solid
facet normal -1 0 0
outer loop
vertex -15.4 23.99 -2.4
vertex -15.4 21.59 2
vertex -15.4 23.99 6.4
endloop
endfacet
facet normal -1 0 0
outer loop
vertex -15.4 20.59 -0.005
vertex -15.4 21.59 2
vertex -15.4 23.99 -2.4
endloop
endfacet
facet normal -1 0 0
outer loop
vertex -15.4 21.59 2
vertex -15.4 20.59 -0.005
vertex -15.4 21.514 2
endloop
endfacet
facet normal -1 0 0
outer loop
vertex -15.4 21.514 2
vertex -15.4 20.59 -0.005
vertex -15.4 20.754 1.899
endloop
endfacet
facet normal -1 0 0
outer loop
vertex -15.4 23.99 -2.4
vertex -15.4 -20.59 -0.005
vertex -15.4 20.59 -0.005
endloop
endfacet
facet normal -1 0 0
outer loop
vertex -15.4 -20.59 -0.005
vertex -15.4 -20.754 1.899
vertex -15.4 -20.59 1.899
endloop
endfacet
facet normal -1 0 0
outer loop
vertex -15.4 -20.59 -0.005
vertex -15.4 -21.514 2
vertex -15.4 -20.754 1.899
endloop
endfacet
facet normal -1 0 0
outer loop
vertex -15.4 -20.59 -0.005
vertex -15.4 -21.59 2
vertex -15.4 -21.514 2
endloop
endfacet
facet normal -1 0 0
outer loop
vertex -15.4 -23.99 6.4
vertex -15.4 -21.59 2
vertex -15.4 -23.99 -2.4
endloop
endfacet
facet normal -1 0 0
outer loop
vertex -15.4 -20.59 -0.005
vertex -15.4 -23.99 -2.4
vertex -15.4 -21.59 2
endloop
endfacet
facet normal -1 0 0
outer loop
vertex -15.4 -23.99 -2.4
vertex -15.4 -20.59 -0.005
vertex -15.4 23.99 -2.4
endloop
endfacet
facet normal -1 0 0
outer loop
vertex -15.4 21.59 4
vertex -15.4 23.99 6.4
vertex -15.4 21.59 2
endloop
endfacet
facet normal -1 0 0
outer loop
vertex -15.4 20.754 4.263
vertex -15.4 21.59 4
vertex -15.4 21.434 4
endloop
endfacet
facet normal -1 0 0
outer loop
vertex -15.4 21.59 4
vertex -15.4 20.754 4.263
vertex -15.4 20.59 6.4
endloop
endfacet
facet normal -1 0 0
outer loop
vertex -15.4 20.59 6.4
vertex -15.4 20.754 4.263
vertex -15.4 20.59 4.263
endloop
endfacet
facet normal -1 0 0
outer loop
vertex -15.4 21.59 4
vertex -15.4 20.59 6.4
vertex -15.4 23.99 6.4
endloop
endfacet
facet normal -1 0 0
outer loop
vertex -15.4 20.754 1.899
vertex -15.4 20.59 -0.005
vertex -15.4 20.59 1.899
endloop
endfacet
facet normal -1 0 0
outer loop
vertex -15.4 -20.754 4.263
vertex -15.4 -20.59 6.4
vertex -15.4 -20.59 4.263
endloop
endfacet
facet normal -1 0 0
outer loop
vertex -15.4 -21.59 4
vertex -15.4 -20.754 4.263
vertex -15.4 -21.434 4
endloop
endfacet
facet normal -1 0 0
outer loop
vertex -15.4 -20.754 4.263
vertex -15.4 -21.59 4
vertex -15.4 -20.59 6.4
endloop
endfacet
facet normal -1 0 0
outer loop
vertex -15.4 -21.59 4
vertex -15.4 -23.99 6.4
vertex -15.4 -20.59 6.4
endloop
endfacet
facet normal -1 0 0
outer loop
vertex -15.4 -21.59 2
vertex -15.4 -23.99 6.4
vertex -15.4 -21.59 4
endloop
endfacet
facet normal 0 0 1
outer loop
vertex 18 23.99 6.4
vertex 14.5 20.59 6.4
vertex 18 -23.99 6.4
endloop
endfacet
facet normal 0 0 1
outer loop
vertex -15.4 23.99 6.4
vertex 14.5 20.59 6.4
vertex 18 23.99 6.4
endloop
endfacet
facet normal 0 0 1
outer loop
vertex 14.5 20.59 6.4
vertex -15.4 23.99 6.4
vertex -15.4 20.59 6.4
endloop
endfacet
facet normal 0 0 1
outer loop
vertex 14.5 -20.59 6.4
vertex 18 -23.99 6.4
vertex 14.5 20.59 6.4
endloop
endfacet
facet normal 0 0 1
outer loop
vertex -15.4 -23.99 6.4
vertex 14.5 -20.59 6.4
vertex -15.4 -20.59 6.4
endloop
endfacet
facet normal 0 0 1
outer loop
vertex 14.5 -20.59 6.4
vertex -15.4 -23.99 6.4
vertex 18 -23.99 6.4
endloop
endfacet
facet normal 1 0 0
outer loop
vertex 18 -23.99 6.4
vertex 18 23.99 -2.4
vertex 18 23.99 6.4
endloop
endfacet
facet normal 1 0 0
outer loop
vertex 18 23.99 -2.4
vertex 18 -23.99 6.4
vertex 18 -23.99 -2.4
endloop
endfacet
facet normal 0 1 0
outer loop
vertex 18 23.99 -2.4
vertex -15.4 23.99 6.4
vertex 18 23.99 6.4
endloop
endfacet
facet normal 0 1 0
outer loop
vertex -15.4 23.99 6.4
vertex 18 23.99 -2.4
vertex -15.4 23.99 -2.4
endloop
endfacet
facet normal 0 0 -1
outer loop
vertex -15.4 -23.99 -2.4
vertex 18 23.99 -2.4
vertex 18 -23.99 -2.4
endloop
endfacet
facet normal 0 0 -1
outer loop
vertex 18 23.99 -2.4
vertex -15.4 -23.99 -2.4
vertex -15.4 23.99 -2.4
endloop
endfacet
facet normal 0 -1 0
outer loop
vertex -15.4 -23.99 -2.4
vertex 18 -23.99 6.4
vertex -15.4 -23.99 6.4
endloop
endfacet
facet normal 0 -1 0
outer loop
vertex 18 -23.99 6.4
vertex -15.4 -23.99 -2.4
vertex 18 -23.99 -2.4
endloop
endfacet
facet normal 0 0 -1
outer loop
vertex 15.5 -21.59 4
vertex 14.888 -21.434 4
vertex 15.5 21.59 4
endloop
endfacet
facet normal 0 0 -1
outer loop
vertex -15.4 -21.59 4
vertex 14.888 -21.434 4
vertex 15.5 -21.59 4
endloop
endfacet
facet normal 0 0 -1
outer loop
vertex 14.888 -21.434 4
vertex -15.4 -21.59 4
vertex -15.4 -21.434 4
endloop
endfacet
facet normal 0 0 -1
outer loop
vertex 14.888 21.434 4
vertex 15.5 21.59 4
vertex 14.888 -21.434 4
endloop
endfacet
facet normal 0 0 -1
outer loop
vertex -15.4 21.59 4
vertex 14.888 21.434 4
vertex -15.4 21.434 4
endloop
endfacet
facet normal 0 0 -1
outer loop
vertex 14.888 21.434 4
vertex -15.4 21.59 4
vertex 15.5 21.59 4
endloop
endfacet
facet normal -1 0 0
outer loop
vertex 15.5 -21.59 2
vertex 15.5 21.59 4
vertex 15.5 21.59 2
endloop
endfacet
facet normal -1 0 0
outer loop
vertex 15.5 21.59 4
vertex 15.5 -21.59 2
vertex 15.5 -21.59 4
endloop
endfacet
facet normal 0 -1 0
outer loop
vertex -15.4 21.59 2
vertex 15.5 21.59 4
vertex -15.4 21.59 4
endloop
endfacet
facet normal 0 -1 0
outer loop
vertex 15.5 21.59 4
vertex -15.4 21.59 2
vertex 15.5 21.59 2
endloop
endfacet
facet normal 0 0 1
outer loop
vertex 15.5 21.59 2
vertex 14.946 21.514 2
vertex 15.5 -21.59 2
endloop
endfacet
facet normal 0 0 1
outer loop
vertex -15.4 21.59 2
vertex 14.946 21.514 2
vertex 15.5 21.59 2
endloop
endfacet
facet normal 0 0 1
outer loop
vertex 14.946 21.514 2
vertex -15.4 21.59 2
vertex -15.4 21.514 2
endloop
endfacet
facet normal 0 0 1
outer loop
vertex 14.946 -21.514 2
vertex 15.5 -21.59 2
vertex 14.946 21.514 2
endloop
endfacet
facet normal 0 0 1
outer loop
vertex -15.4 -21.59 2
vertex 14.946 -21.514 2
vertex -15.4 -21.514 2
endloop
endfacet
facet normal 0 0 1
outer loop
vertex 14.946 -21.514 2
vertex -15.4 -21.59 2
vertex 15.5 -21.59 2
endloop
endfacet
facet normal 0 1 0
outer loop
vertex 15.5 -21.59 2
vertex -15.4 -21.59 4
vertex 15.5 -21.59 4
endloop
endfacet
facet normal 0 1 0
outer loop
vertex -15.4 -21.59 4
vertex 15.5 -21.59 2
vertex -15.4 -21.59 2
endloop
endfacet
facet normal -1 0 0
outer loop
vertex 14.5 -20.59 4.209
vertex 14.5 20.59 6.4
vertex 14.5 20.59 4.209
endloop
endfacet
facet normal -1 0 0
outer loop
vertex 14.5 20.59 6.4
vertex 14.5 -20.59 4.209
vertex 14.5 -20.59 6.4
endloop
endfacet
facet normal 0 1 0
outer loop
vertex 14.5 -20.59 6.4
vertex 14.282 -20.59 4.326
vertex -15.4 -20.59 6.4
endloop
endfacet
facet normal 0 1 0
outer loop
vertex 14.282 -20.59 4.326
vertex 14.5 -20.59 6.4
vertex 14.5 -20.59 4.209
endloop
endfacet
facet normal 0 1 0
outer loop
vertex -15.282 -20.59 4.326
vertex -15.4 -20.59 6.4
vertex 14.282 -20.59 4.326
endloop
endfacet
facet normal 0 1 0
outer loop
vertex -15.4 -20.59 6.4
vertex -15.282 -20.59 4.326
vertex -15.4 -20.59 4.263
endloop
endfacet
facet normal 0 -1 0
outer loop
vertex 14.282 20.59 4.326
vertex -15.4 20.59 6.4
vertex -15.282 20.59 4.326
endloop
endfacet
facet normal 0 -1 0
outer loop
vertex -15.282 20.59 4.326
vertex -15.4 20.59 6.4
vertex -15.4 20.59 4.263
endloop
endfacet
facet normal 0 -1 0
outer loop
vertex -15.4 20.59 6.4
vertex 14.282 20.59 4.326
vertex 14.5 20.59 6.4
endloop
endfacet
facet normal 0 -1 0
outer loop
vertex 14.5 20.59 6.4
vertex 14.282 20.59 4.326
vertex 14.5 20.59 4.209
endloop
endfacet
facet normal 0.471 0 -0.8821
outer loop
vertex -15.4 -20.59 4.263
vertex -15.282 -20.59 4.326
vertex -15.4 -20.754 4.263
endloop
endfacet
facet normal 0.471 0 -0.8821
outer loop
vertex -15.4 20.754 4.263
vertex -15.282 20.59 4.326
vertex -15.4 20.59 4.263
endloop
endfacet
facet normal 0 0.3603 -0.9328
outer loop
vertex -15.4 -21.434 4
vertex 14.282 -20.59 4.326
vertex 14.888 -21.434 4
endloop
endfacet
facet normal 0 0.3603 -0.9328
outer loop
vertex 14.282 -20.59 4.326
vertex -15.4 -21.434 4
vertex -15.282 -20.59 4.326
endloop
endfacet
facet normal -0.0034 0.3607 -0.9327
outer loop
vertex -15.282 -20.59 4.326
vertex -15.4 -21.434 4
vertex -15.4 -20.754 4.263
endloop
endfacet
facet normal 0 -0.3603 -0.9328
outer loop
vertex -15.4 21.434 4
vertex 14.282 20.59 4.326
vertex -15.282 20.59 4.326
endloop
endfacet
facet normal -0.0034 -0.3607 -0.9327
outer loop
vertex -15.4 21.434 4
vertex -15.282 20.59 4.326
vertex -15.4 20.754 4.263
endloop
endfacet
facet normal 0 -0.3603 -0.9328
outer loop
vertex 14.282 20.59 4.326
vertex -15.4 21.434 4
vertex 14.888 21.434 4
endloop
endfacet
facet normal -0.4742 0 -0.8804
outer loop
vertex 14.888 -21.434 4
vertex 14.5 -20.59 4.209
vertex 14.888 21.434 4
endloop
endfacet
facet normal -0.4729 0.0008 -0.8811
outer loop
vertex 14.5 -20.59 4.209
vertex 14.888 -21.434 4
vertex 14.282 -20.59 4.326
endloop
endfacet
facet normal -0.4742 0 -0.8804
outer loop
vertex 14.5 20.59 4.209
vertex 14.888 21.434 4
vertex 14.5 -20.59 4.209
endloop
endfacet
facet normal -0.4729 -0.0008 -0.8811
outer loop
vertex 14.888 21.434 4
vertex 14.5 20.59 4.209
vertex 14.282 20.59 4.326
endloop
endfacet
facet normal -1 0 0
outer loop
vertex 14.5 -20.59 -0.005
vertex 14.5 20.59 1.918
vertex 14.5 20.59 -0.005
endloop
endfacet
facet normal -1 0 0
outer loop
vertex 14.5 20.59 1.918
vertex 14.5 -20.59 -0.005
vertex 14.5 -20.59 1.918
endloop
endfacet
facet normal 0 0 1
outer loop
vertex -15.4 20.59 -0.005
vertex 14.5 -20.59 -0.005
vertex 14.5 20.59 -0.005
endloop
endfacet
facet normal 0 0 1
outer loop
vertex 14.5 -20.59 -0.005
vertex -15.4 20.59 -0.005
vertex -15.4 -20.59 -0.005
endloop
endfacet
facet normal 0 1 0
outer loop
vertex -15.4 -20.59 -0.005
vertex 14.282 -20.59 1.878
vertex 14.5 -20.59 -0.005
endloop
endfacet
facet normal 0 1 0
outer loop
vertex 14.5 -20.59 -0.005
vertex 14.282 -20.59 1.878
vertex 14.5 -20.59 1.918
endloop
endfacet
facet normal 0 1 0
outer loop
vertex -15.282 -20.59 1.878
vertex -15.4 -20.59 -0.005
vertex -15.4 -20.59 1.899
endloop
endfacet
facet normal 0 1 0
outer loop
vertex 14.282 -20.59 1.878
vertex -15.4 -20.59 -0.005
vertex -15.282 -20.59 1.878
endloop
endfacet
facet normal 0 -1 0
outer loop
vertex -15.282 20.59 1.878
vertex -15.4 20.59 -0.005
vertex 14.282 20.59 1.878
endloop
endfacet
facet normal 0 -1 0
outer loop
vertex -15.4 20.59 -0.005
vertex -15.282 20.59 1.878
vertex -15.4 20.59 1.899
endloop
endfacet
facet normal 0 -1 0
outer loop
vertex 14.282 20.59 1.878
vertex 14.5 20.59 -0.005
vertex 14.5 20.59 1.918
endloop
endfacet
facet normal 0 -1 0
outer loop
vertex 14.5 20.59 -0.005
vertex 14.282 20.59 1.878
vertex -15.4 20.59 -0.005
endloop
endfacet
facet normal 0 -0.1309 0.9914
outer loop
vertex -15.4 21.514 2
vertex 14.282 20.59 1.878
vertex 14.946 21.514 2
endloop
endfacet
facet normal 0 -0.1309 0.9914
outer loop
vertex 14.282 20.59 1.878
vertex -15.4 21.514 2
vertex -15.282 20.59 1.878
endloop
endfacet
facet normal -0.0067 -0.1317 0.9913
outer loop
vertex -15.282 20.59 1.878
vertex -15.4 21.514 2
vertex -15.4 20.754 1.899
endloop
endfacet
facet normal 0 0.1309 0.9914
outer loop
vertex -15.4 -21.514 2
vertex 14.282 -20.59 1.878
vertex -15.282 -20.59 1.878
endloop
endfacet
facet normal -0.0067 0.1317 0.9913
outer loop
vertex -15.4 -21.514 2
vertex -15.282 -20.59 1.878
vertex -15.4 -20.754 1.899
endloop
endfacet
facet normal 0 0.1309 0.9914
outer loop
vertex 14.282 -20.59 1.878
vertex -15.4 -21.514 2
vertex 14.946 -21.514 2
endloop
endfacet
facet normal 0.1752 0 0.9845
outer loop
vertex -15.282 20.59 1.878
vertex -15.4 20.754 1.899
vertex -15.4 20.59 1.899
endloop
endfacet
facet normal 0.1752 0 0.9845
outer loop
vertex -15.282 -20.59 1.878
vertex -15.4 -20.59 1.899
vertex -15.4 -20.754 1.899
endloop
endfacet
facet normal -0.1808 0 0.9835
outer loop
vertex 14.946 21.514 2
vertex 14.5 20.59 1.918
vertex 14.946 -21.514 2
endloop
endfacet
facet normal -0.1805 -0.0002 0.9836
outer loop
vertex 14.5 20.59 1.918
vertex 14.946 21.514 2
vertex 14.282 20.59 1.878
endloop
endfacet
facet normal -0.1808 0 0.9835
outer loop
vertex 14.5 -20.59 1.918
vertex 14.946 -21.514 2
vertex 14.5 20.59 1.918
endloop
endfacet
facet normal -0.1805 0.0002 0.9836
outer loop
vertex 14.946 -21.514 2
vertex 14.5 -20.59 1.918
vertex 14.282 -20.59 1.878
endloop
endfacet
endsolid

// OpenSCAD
pcb_height=31;
pcb_width=43.18;
pcb_thick=2;
grove=1;
walls=2.4;
bottom_offset=2;
chamfer_top=0.7;//[0.0:1.0]
chamfer_bottom=0.3;//[0.0:1.0]


difference(){
//box
translate([walls/2+0.1,0,pcb_thick/2+bottom_offset/2]){
cube([pcb_height+walls,pcb_width+walls*2,pcb_thick+walls*2+bottom_offset],center=true);
}

//pcb
color("green")
translate([0,0,pcb_thick/2+bottom_offset]){
cube([pcb_height,pcb_width,pcb_thick],center=true);
}

//grove
color("blue")
translate([-grove/2,0,pcb_thick+walls/2+bottom_offset]){
cube([pcb_height-grove,pcb_width-grove*2,walls+0.01],center=true);
}


//chamfer top
color("red")
translate([-grove/2,0,pcb_thick+walls/2+bottom_offset-0.01]){
linear_extrude(height = walls+0.1, center = true, convexity = 3, scale = chamfer_top){
square(size = [pcb_height, pcb_width], center = true);
}
}

//bottom offset
color("Gray")
translate([-grove/2,0,bottom_offset/2]){
cube([pcb_height-grove,pcb_width-grove*2,bottom_offset+0.01],center=true);
}

//chamfer bottom
color("Purple")
translate([-grove/2,0,bottom_offset/2+0.01]){
mirror([0,0,1]) 
linear_extrude(height = bottom_offset, center = true, convexity = 3, scale = chamfer_bottom){
square(size = [pcb_height, pcb_width], center = true);
}
}

}
